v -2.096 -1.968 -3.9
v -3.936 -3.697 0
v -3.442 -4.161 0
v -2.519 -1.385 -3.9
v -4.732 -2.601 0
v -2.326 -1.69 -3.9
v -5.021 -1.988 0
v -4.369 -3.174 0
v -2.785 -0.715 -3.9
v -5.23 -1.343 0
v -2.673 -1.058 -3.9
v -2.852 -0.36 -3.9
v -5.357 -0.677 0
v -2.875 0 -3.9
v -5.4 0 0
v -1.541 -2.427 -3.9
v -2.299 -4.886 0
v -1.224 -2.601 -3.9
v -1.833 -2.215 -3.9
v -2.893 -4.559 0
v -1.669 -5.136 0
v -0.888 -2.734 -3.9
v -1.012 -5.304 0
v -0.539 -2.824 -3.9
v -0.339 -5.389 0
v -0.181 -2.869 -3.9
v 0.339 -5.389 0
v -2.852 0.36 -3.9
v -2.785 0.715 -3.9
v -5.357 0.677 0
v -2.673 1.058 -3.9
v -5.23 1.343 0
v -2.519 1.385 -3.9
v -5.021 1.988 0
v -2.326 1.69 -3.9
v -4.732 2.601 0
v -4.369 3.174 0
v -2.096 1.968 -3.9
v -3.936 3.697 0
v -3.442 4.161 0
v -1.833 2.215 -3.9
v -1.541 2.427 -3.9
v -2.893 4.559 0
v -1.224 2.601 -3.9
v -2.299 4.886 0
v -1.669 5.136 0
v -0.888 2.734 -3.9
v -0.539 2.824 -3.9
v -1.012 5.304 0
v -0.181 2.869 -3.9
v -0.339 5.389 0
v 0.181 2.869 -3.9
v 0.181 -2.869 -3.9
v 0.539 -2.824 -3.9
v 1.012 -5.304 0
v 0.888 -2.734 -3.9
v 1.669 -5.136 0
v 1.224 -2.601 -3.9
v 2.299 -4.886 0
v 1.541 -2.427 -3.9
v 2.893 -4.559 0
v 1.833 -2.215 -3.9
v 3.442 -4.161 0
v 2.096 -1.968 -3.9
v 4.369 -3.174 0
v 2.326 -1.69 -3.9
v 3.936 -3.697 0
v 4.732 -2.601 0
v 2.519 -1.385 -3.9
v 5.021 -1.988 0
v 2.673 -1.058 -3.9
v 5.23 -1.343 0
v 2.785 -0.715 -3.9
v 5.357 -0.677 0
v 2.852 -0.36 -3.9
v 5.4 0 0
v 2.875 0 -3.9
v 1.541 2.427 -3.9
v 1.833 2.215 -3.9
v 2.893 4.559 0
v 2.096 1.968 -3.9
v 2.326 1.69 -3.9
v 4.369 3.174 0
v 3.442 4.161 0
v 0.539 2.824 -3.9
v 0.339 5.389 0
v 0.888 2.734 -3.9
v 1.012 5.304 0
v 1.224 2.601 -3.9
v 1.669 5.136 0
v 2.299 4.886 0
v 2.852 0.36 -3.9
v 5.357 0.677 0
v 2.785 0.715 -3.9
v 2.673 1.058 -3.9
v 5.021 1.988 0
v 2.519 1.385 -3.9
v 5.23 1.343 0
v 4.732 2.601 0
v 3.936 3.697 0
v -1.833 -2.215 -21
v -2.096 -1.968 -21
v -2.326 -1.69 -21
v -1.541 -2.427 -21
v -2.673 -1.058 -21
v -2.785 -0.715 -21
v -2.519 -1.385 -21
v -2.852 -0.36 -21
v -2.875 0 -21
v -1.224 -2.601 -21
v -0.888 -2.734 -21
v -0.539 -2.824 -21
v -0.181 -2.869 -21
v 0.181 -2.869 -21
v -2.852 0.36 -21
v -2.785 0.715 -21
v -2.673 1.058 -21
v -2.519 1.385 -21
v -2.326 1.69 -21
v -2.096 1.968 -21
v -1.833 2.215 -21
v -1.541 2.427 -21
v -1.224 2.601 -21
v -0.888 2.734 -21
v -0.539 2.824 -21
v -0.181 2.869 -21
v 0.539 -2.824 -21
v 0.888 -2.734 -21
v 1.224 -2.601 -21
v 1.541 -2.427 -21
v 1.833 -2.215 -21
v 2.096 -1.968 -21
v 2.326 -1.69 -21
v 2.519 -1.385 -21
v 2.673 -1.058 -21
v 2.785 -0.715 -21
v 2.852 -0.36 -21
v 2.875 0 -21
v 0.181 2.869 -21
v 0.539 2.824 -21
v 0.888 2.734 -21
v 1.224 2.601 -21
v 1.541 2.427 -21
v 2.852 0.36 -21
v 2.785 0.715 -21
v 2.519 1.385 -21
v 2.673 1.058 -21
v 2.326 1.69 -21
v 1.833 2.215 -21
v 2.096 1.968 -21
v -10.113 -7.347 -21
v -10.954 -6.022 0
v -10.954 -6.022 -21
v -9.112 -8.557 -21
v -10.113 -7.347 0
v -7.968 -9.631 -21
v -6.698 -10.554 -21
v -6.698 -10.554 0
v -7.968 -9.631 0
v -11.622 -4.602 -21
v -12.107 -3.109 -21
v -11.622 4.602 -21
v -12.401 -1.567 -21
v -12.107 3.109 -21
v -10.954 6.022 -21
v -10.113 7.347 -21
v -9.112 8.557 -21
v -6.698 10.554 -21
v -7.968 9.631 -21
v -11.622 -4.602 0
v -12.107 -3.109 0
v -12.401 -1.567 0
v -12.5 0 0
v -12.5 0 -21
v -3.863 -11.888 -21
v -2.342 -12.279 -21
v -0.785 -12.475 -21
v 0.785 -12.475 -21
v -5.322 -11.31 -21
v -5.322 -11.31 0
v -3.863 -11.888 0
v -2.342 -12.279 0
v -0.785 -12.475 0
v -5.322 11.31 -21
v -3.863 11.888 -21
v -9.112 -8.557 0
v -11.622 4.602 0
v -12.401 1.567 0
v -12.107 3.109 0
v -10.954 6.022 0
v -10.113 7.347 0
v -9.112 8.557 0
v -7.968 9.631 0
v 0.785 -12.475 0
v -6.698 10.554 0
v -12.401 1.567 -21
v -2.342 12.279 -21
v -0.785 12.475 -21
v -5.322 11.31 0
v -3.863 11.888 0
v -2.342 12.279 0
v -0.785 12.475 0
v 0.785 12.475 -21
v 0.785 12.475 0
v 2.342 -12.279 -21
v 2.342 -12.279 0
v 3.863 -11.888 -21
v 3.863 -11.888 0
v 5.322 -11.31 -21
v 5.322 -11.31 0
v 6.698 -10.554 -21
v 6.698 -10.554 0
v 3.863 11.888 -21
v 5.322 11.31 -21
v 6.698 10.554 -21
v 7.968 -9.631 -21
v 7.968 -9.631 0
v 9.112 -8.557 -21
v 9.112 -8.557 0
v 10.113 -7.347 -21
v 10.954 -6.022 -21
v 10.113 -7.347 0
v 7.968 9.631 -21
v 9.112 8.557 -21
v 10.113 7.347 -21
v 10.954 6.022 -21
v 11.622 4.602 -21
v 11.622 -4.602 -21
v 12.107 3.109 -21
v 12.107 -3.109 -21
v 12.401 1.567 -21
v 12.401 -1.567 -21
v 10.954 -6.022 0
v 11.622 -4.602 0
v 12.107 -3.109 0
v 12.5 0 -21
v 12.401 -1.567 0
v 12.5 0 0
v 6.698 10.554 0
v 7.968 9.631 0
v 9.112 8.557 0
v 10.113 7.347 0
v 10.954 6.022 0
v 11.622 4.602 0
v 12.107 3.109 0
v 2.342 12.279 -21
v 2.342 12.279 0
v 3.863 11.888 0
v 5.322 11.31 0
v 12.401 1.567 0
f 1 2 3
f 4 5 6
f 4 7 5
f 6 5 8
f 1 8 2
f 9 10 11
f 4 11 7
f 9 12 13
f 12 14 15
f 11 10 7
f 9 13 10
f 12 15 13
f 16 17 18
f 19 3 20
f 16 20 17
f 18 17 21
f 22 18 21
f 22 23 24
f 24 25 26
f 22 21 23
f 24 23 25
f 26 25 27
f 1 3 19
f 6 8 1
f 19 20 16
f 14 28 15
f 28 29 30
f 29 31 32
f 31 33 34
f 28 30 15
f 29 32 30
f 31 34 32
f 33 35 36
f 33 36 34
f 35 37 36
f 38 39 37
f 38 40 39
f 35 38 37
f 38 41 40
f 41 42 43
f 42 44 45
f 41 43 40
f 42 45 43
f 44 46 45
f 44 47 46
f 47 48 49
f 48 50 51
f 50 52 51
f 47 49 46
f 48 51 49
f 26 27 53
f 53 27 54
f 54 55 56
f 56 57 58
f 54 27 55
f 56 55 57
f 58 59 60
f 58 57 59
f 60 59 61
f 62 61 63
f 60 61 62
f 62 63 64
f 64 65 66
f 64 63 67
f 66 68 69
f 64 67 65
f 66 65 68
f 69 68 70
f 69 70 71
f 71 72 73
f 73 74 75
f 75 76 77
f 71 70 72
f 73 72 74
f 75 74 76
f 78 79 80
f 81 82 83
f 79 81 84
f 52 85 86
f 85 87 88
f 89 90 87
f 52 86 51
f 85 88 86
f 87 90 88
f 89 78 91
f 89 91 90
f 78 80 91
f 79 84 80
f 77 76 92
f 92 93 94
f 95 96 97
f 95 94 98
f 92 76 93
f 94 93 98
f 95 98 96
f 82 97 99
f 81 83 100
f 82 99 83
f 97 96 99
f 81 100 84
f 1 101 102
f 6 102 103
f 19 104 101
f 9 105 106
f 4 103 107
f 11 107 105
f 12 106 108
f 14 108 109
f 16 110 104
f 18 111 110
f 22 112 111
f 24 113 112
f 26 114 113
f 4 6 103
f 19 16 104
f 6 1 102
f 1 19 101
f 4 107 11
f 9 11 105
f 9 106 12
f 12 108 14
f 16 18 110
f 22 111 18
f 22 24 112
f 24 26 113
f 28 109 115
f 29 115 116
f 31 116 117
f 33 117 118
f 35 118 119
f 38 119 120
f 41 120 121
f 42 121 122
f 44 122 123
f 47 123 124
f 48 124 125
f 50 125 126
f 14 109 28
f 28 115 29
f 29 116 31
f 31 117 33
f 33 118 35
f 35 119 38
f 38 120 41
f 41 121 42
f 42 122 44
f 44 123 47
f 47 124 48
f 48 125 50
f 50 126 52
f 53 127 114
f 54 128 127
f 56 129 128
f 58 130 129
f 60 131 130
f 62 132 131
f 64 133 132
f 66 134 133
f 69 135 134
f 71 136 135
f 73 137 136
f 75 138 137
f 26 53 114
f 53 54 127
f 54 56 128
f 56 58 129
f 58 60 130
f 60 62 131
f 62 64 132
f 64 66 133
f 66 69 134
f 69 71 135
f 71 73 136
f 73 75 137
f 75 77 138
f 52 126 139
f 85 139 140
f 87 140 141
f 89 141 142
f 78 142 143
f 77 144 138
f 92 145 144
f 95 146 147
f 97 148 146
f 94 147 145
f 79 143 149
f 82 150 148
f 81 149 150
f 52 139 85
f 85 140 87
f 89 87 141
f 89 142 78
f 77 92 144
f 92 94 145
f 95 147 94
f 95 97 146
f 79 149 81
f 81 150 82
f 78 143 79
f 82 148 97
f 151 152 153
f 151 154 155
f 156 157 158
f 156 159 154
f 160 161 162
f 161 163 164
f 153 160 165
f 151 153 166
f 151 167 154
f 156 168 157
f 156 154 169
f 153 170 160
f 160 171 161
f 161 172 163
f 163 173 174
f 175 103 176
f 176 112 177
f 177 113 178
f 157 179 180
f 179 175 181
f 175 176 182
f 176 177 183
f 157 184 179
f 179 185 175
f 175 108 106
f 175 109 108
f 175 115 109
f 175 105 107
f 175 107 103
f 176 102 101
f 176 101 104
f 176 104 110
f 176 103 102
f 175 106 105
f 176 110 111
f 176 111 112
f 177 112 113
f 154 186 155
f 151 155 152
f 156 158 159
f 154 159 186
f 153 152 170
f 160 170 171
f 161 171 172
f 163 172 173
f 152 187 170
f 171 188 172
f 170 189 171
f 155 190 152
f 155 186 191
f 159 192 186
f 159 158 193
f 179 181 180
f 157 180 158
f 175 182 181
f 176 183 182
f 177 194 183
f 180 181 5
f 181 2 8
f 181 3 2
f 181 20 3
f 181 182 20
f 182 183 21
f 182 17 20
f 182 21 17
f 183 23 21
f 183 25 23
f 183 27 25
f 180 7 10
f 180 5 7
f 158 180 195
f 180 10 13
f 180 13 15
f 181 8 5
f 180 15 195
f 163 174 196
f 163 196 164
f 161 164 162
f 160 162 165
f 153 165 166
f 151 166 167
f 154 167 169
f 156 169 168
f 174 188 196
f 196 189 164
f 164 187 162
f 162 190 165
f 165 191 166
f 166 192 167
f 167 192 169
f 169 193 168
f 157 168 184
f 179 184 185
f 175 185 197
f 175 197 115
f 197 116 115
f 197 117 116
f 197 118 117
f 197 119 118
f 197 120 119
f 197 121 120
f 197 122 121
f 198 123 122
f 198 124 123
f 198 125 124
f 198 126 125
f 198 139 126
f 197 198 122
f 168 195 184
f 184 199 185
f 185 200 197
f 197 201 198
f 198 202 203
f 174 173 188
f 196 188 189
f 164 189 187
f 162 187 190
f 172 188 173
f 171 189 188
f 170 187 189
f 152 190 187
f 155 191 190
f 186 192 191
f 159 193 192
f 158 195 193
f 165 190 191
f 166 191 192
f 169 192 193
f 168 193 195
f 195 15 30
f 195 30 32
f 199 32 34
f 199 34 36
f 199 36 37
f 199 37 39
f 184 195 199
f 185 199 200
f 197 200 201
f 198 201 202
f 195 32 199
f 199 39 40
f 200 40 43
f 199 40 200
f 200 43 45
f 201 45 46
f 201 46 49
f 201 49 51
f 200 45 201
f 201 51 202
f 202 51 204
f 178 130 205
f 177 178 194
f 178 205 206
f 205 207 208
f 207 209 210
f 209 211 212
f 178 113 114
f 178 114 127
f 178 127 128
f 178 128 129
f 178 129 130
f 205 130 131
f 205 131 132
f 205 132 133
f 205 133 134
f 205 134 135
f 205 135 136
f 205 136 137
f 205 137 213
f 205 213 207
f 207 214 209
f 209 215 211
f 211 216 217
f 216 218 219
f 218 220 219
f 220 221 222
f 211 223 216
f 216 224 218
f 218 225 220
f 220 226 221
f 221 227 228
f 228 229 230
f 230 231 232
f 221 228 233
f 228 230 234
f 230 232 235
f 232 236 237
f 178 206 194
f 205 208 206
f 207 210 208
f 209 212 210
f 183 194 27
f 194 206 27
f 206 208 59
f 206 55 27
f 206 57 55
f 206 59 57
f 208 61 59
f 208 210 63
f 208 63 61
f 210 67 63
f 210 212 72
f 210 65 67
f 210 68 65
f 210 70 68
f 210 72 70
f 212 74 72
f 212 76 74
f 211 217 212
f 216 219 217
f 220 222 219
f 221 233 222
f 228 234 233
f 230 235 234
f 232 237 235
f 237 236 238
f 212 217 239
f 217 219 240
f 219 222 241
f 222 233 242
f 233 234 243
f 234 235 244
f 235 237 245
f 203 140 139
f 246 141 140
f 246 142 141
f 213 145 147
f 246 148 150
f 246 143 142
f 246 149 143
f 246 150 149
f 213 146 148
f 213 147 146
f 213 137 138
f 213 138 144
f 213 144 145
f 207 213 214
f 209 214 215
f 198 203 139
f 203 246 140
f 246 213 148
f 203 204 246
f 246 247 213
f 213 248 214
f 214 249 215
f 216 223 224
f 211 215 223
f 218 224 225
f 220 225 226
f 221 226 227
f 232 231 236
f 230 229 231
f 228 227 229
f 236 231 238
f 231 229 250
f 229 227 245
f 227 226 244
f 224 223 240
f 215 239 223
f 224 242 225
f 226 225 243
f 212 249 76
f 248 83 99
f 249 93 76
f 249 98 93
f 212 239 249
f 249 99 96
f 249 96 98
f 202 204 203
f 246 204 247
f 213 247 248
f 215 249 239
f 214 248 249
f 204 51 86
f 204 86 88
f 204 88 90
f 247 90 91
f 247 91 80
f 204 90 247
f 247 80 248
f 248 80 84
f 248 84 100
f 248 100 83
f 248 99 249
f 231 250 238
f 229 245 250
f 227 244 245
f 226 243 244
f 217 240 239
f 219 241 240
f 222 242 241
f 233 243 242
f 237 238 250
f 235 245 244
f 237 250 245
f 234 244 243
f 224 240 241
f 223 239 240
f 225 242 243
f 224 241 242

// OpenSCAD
$fn = 50;

difference() {
	union() {
		translate(v = [0, 0, -21.0]) {
			cylinder(h = 21, r = 12.5);
		}
	}
	union() {
		translate(v = [0, 0, 0]) {
			rotate(a = [0, 0, 0]) {
				difference() {
					union() {
						translate(v = [0, 0, -24.0]) {
							cylinder(h = 24, r = 2.6);
						}
						translate(v = [0, 0, -3.9]) {
							cylinder(h = 3.9, r1 = 2.875, r2 = 5.4);
						}
						translate(v = [0, 0, -24.0]) {
							cylinder(h = 24, r = 2.875);
						}
						translate(v = [0, 0, -24.0]) {
							cylinder(h = 24, r = 2.6);
						}
					}
					union();
				}
			}
		}
	}
}
